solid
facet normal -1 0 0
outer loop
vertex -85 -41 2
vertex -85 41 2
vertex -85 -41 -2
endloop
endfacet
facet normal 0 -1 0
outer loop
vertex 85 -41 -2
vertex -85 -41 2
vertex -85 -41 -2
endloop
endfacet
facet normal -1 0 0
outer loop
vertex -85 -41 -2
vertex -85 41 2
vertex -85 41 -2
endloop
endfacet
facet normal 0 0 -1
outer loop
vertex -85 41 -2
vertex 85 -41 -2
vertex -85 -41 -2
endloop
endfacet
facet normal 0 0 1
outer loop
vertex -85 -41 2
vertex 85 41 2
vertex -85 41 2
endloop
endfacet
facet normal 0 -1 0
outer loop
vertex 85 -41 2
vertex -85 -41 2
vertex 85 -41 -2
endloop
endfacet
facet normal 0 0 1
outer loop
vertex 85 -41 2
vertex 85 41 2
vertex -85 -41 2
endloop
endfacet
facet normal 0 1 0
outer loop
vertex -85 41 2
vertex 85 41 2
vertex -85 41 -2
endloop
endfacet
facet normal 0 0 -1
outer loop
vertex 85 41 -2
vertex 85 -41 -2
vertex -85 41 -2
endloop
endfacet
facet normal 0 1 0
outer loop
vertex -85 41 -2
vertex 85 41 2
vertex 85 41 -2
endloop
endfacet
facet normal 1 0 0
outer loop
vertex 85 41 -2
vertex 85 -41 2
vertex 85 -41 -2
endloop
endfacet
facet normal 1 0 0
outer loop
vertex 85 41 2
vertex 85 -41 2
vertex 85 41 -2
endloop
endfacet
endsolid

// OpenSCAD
polyhedron(points=[[-85.0, -41.0, -2.0], [-85.0, -41.0, 2.0], [-85.0, 41.0, -2.0], [-85.0, 41.0, 2.0], [85.0, -41.0, -2.0], [85.0, -41.0, 2.0], [85.0, 41.0, -2.0], [85.0, 41.0, 2.0]], faces=[[1, 3, 0], [4, 1, 0], [0, 3, 2], [2, 4, 0], [1, 7, 3], [5, 1, 4], [5, 7, 1], [3, 7, 2], [6, 4, 2], [2, 7, 6], [6, 5, 4], [7, 5, 6]], convexity=20);
